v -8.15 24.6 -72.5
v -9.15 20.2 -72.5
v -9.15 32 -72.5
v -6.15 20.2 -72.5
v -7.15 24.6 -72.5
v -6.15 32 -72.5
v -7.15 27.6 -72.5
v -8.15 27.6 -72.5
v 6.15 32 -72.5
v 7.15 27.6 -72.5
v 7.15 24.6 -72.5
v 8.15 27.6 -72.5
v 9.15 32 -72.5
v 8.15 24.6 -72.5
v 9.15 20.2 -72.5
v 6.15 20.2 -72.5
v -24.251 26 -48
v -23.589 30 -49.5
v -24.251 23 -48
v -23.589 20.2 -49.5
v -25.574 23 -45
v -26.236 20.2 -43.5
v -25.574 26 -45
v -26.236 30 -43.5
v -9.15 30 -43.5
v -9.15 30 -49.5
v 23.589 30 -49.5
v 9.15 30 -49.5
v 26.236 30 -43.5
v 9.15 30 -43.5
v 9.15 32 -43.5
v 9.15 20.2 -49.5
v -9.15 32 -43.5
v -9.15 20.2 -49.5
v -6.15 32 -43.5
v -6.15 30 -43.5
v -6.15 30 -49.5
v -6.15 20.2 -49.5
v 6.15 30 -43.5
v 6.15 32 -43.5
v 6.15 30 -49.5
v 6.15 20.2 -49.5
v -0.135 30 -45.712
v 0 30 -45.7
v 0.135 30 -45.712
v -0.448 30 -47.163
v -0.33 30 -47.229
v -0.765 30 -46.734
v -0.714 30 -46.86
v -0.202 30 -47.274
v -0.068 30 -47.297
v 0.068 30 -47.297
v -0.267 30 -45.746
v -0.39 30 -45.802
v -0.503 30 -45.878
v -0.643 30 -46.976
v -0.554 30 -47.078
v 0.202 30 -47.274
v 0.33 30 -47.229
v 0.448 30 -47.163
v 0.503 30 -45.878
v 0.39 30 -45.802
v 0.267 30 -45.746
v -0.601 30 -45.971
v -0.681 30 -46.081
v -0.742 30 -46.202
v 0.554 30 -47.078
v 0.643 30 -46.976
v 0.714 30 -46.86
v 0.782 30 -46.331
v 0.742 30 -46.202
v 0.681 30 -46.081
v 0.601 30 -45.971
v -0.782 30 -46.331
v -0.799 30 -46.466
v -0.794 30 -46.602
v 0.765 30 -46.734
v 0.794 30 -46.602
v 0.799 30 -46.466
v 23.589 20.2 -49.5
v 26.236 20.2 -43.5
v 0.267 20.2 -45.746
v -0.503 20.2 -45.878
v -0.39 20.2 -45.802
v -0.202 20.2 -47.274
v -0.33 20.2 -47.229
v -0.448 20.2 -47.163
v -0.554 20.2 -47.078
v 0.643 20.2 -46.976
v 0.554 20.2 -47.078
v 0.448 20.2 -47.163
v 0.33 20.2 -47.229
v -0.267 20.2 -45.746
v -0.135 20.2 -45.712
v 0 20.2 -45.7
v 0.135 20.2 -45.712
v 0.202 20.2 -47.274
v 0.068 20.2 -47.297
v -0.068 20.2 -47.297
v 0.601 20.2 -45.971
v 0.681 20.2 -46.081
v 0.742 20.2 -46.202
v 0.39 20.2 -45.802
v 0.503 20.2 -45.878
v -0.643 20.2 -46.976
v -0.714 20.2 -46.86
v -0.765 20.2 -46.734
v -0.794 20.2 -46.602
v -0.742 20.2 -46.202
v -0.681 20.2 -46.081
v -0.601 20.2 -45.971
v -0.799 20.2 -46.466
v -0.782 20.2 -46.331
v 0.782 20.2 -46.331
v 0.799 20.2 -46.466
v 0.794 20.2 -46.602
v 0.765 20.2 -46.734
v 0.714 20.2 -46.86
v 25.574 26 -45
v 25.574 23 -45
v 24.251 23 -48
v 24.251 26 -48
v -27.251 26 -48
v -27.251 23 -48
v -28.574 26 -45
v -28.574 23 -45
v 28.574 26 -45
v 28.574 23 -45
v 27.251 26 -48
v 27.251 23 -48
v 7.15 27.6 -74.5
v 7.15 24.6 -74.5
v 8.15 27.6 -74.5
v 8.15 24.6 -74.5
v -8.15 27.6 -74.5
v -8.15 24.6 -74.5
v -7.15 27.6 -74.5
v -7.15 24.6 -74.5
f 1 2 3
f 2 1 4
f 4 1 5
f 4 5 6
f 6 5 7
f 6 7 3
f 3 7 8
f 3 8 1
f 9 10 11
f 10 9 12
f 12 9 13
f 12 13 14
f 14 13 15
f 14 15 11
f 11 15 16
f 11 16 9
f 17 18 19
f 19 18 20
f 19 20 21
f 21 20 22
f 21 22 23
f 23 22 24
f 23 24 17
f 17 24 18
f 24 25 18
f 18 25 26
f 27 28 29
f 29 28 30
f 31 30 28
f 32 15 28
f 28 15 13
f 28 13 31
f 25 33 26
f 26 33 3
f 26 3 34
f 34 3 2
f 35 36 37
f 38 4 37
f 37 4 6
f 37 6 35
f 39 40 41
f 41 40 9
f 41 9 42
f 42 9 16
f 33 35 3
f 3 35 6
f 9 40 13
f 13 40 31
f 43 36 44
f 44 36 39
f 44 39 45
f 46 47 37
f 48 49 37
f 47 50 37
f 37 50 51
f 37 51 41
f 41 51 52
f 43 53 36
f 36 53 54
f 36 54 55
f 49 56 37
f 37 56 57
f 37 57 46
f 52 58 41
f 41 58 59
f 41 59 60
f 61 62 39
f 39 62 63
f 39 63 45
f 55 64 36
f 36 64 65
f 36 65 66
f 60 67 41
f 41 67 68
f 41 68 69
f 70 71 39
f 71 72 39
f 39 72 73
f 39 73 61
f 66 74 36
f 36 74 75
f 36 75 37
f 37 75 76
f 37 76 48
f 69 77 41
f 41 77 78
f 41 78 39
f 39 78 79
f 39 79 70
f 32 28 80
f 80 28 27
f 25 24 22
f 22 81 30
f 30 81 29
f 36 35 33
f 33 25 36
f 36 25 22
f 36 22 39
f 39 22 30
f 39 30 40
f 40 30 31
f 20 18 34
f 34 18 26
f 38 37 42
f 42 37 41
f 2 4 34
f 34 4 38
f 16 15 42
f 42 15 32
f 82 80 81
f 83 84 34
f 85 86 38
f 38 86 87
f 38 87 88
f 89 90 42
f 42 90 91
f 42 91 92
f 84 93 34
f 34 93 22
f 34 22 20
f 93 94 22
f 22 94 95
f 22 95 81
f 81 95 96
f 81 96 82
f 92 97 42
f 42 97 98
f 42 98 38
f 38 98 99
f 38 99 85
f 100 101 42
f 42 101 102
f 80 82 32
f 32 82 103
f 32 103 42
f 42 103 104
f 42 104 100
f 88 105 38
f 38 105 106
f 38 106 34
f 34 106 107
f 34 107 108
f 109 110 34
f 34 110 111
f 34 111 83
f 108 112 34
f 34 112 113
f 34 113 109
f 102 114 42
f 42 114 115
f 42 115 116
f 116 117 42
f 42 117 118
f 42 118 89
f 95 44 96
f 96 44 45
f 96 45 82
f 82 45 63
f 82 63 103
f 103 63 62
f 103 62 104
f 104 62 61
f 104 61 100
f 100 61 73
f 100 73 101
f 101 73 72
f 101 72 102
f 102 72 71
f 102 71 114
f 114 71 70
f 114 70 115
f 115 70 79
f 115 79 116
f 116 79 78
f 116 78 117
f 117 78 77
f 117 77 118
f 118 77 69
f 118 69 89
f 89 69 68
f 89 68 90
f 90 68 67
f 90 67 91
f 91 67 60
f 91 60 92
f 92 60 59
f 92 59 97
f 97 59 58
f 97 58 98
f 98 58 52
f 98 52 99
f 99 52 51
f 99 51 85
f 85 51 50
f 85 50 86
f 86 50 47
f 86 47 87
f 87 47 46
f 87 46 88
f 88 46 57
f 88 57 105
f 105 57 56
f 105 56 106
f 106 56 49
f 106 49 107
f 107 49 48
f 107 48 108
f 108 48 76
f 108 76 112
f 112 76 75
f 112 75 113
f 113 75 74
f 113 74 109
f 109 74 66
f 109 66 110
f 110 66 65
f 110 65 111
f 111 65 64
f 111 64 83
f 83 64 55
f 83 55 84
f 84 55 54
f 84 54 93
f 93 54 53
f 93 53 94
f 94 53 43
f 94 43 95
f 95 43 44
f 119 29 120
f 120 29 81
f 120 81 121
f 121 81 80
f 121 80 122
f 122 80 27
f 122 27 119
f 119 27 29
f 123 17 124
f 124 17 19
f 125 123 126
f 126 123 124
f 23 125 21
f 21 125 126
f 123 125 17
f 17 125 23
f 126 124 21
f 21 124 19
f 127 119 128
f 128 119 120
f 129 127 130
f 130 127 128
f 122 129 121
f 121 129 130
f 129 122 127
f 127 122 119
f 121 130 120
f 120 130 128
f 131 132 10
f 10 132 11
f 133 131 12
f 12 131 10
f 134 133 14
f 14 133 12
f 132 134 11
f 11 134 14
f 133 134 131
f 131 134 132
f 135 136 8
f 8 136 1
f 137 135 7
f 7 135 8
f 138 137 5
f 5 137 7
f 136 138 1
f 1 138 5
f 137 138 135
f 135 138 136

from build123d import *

# Parameters (mm, degrees)
SKETCH1_W                = 58
SKETCH1_H                = 65
BOSS_EXTRUDE1_DEPTH      = 30
BOSS_EXTRUDE3_REACH      = 92.09
SKETCH10_W               = 5
SKETCH10_H               = 14
CUT_EXTRUDE1_REACH       = 111.372
SKETCH2_R                = 2.45
SKETCH2_R_2              = 2.55
CUT_EXTRUDE2_REACH       = 91.744
SKETCH3_W                = 12.4
SKETCH3_H                = 10.4
SKETCH11_W               = 3
SKETCH11_H               = 2
BOSS_EXTRUDE4_DEPTH      = 6.3
FILLET3_R                = 1.5
SKETCH12_R               = 0.5
CUT_EXTRUDE3_DEPTH       = 92.15338732
FILLET3_OF_MIRROR1_R     = 1.5
BOSS_EXTRUDE5_REACH      = 111.564
SKETCH13_W               = 15
SKETCH13_H               = 6
BOSS_EXTRUDE6_REACH      = 111.564
SKETCH17_W               = 15
SKETCH17_H               = 14
CUT_EXTRUDE18_REACH      = 129.651
SKETCH35_W               = 16
SKETCH35_H               = 6
FILLET5_R                = 3
BOSS_EXTRUDE7_START      = 20.2
BOSS_EXTRUDE7_DEPTH      = 9.8
BOSS_EXTRUDE8_DEPTH      = 20
CUT_EXTRUDE15_REACH      = 95.637
SKETCH28_R               = 0.8
FILLET4_R                = 3
CUT_EXTRUDE16_REACH      = 96.767
SKETCH29_R               = 1.6
SKETCH30_W               = 14
SKETCH30_H               = 1.5
BOSS_EXTRUDE9_DEPTH      = 6.1
SKETCH31_W               = 1.3
SKETCH31_H               = 14
BOSS_EXTRUDE10_DEPTH     = 5
CUT_EXTRUDE17_REACH      = 99.736
FILLET11_R               = 1
FILLET11_OF_MIRROR4_R    = 1
MIRROR5_START            = 2.5
MIRROR5_OUTLINE_W        = 1.5
MIRROR5_OUTLINE_H        = 14
MIRROR5_DEPTH            = 6.1
MIRROR5_START_2          = 7.3
MIRROR5_2_DEPTH          = 1.3
SKETCH36_W               = 22.4
SKETCH36_H               = 14.8
BOSS_EXTRUDE12_DEPTH     = 14
CUT_EXTRUDE19_DEPTH      = 3
CUT_EXTRUDE20_DEPTH      = 11
CUT_EXTRUDE21_REACH      = 101.088
SKETCH41_W               = 3
SKETCH41_H               = 35
BOSS_EXTRUDE13_DEPTH     = 2
BOSS_EXTRUDE14_START     = -1.789079
SKETCH43_W               = 36.284482562
SKETCH43_H               = 9.6
BOSS_EXTRUDE14_DEPTH     = 66.789079
BOSS_EXTRUDE15_REACH     = 152.996
SKETCH44_W               = 2.842240903
SKETCH44_H               = 50
FILLET6_R                = 8
FILLET7_R                = 5
SKETCH45_W               = 17
SKETCH45_H               = 8
CUT_EXTRUDE22_DEPTH      = 166.644015889
BOSS_EXTRUDE16_REACH     = 152.29
SKETCH46_W               = 4.5
SKETCH46_H               = 5
BOSS_EXTRUDE17_REACH     = 154.715
SKETCH49_W               = 8
SKETCH49_H               = 9
CUT_EXTRUDE23_DEPTH      = 8
SKETCH50_R               = 2.45
CUT_EXTRUDE24_DEPTH      = 4.5
CUT_EXTRUDE25_START      = 13.5
SKETCH51_R               = 2.45
CUT_EXTRUDE25_DEPTH      = 4.5
BOSS_EXTRUDE18_REACH     = 165.708
SKETCH53_W               = 5
SKETCH53_H               = 10
SKETCH55_W               = 58
SKETCH55_H               = 10
BOSS_EXTRUDE20_DEPTH     = 4
CUT_EXTRUDE9_START       = -10
SKETCH19_W               = 30
SKETCH19_H               = 15
CUT_EXTRUDE9_DEPTH       = 10
SKETCH58_W               = 70
SKETCH58_H               = 9
CUT_EXTRUDE27_DEPTH      = 153.77843439
BOSS_EXTRUDE22_REACH     = 153.411
SKETCH59_W               = 30
SKETCH59_H               = 5
CUT_EXTRUDE28_REACH      = 183.113
SKETCH18_R               = 1.5
FILLET9_R                = 2
FILLET10_R               = 1
SKETCH60_W               = 70
SKETCH60_H               = 3
BOSS_EXTRUDE23_DEPTH     = 30
CUT_EXTRUDE29_DEPTH      = 7.5
CUT_EXTRUDE30_DEPTH      = 3
SKETCH64_W               = 58
SKETCH64_H               = 4
BOSS_EXTRUDE24_DEPTH     = 6
CUT_EXTRUDE31_DEPTH      = 7.5
CUT_EXTRUDE32_DEPTH      = 153.77843439
SKETCH66_W               = 26.284482562
SKETCH66_H               = 4.8
BOSS_EXTRUDE25_DEPTH     = 10
SKETCH73_W               = 121.646596119
SKETCH73_H               = 145.231140265
CUT_EXTRUDE33_DEPTH      = 16
CUT_EXTRUDE34_DEPTH      = 4
CUT_EXTRUDE35_DEPTH      = 6.5
CUT_EXTRUDE36_DEPTH      = 7
SKETCH79_W               = 43.755200993
SKETCH79_H               = 6.87148653
CUT_EXTRUDE37_DEPTH      = 2
CUT_EXTRUDE38_DEPTH      = 2.4
CUT_EXTRUDE39_DEPTH      = 108.707547785
CUT_EXTRUDE39_DEPTH_BACK = 108.707547785
SKETCH81_W               = 95.744118352
SKETCH81_H               = 138.331599567
BOSS_EXTRUDE26_START     = -2.8
BOSS_EXTRUDE26_DEPTH     = 3
SKETCH83_W               = 1
SKETCH83_H               = 3
BOSS_EXTRUDE27_DEPTH     = 2


# Read off the part's stored shape, not the designer's step: Mirror5
# Some blends are built 0.0001 mm under size
with BuildPart() as part:
    # Sketch1 → Boss-Extrude1 (new body)
    with BuildSketch(Plane(origin=(0, 0, 0), x_dir=(1, 0, 0), z_dir=(0, 1, 0))):
        Polygon((-35, 38.5), (-17.352941176, 78.5), (17.352941947, 78.5), (35, 38.5), (35, -38.5), (-35, -38.5), align=None)
        Rectangle(SKETCH1_W, SKETCH1_H, mode=Mode.SUBTRACT)
        Polygon((-28.44203382, 38.5), (28.442033867, 38.5), (13.442034522, 72.5), (-13.44203382, 72.5), align=None, mode=Mode.SUBTRACT)
    extrude(amount=BOSS_EXTRUDE1_DEPTH)

    # Sketch7 → Loft3 section 0
    with BuildSketch(Plane.XY.offset(-32.5)):
        with BuildLine():
            Line((-8.6, 30), (8.6, 30))
            Line((8.6, 30), (8.6, 27))
            Line((8.6, 27), (-8.6, 27))
            Line((-8.6, 27), (-8.6, 30))
        make_face()
    # Sketch8 → Loft3 section 1
    with BuildSketch(Plane.XY.offset(38.5)):
        with BuildLine():
            Line((-8.6, 30), (8.6, 30))
            Line((8.6, 30), (8.6, 27))
            Line((8.6, 27), (-8.6, 27))
            Line((-8.6, 27), (-8.6, 30))
        make_face()
    loft3 = loft()

    # Mirror3: Loft3 across plane
    add(loft3.mirror(Plane(origin=(0, 15, 0), x_dir=(0, 0, 1), z_dir=(0, -1, 0))))

    # Sketch10 → Boss-Extrude3 (add, up to next)
    with BuildSketch(Plane.XZ.offset(-27), mode=Mode.PRIVATE) as boss_extrude3_sk1:
        with Locations((0, 2.5)):
            Rectangle(SKETCH10_W, SKETCH10_H)
    boss_extrude3_tool1 = extrude(boss_extrude3_sk1.sketch, amount=BOSS_EXTRUDE3_REACH, mode=Mode.PRIVATE) - part.part
    add(boss_extrude3_tool1.solids().sort_by_distance((0, 27, 2.5))[0])

    # Sketch2 → Cut-Extrude1 (cut, up to next)
    with BuildSketch(Plane(origin=(35, 0, 0), x_dir=(0, 0, -1), z_dir=(1, 0, 0)), mode=Mode.PRIVATE) as cut_extrude1_sk1:
        with Locations((-2.5, 15)):
            Circle(SKETCH2_R)
    cut_extrude1_tool1 = extrude(cut_extrude1_sk1.sketch, amount=-CUT_EXTRUDE1_REACH, mode=Mode.PRIVATE) & part.part
    # Sketch2 → Cut-Extrude1 (cut, up to next)
    with BuildSketch(Plane(origin=(35, 0, 0), x_dir=(0, 0, -1), z_dir=(1, 0, 0)), mode=Mode.PRIVATE) as cut_extrude1_sk2:
        with Locations((19.5, 15)):
            Circle(SKETCH2_R_2)
    cut_extrude1_tool2 = extrude(cut_extrude1_sk2.sketch, amount=-CUT_EXTRUDE1_REACH, mode=Mode.PRIVATE) & part.part
    cut_extrude1_1 = cut_extrude1_tool1.solids().sort_by_distance((35, 15, 2.5))[0]
    add(cut_extrude1_1, mode=Mode.SUBTRACT)
    cut_extrude1_2 = cut_extrude1_tool2.solids().sort_by_distance((35, 15, -19.5))[0]
    add(cut_extrude1_2, mode=Mode.SUBTRACT)
    cut_extrude1 = cut_extrude1_1 + cut_extrude1_2  # Cut-Extrude1 as one shape, for the pattern or mirror that repeats it

    # Sketch3 → Cut-Extrude2 (cut, up to next)
    with BuildSketch(Plane(origin=(0, 0, -38.5), x_dir=(-1, 0, 0), z_dir=(0, 0, -1)), mode=Mode.PRIVATE) as cut_extrude2_sk1:
        with Locations((0, 15)):
            Rectangle(SKETCH3_W, SKETCH3_H)
    cut_extrude2_tool1 = extrude(cut_extrude2_sk1.sketch, amount=-CUT_EXTRUDE2_REACH, mode=Mode.PRIVATE) & part.part
    add(cut_extrude2_tool1.solids().sort_by_distance((0, 15, -38.5))[0], mode=Mode.SUBTRACT)

    # Sketch11 → Boss-Extrude4 (add)
    with BuildSketch(Plane(origin=(35, 0, 0), x_dir=(0, 0, -1), z_dir=(1, 0, 0))):
        with Locations((2.5, 20)):
            Rectangle(SKETCH11_W, SKETCH11_H)
        with Locations((2.5, 10)):
            Rectangle(SKETCH11_W, SKETCH11_H)
    boss_extrude4 = extrude(amount=BOSS_EXTRUDE4_DEPTH)

    # Fillet3
    fillet3_edges = [part.edges().sort_by_distance(p)[0] for p in [
        (41.3, 10, -1),
        (41.3, 10, -4),
        (41.3, 20, -1),
        (41.3, 20, -4),
    ]]
    fillet(fillet3_edges, radius=FILLET3_R - 0.0001)  # a hair under: the kernel refuses the full size

    # Sketch12 → Cut-Extrude3 (cut, through all)
    with BuildSketch(Plane(origin=(0, 21, 0), x_dir=(1, 0, 0), z_dir=(0, 1, 0))):
        with Locations(Location((39.8, 2.5, 0), (0, 0, 270))):
            Circle(SKETCH12_R)
    cut_extrude3 = extrude(amount=-CUT_EXTRUDE3_DEPTH, mode=Mode.SUBTRACT)

    # Mirror1: Cut-Extrude1, Boss-Extrude4, Cut-Extrude3 across plane
    add(cut_extrude1.mirror(Plane(origin=(0, 0, 0), x_dir=(0, 0, 1), z_dir=(1, 0, 0))), mode=Mode.SUBTRACT)
    add(boss_extrude4.mirror(Plane(origin=(0, 0, 0), x_dir=(0, 0, 1), z_dir=(1, 0, 0))))
    add(cut_extrude3.mirror(Plane(origin=(0, 0, 0), x_dir=(0, 0, 1), z_dir=(1, 0, 0))), mode=Mode.SUBTRACT)

    # Fillet3 of Mirror1
    fillet3_of_mirror1_edges = [part.edges().sort_by_distance(p)[0] for p in [
        (-41.3, 10, -1),
        (-41.3, 10, -4),
        (-41.3, 20, -1),
        (-41.3, 20, -4),
    ]]
    fillet(fillet3_of_mirror1_edges, radius=FILLET3_OF_MIRROR1_R - 0.0001)  # a hair under: the kernel refuses the full size

    # Sketch13 → Boss-Extrude5 (add, up to next)
    with BuildSketch(Plane(origin=(-29, 0, 0), x_dir=(0, 0, -1), z_dir=(1, 0, 0)), mode=Mode.PRIVATE) as boss_extrude5_sk1:
        with Locations((-25, 27)):
            Rectangle(SKETCH13_W, SKETCH13_H)
    boss_extrude5_tool1 = extrude(boss_extrude5_sk1.sketch, amount=BOSS_EXTRUDE5_REACH, mode=Mode.PRIVATE) - part.part
    add(boss_extrude5_tool1.solids().sort_by_distance((-29, 27, 25))[0])

    # Sketch17 → Boss-Extrude6 (add, up to next)
    with BuildSketch(Plane(origin=(-29, 0, 0), x_dir=(0, 0, -1), z_dir=(1, 0, 0)), mode=Mode.PRIVATE) as boss_extrude6_sk1:
        with Locations((-25, 7)):
            Rectangle(SKETCH17_W, SKETCH17_H)
    boss_extrude6_tool1 = extrude(boss_extrude6_sk1.sketch, amount=BOSS_EXTRUDE6_REACH, mode=Mode.PRIVATE) - part.part
    add(boss_extrude6_tool1.solids().sort_by_distance((-29, 7, 25))[0])

    # Sketch35 → Cut-Extrude18 (cut, up to next)
    with BuildSketch(Plane(origin=(0, 0, -78.5), x_dir=(-1, 0, 0), z_dir=(0, 0, -1)), mode=Mode.PRIVATE) as cut_extrude18_sk1:
        with Locations((0, 15)):
            Rectangle(SKETCH35_W, SKETCH35_H)
    cut_extrude18_tool1 = extrude(cut_extrude18_sk1.sketch, amount=-CUT_EXTRUDE18_REACH, mode=Mode.PRIVATE) & part.part
    add(cut_extrude18_tool1.solids().sort_by_distance((0, 15, -78.5))[0], mode=Mode.SUBTRACT)

    # Fillet5
    fillet5_edges = [part.edges().sort_by_distance(p)[0] for p in [
        (-35, 15, -38.5),
        (-17.352941176, 15, -78.5),
        (17.352941947, 15, -78.5),
        (35, 15, -38.5),
        (-8, 15, -78.5),
        (8, 15, -78.5),
    ]]
    fillet(fillet5_edges, radius=FILLET5_R)

    # Sketch24 → Boss-Extrude7 (add)
    with BuildSketch(Plane(origin=(0, 0, 0), x_dir=(1, 0, 0), z_dir=(0, 1, 0)).offset(BOSS_EXTRUDE7_START)):
        Polygon((9.15, 49.5), (9.15, 72.5), (6.15, 72.5), (6.15, 49.5), (-6.15, 49.5), (-6.15, 72.5), (-9.15, 72.5), (-9.15, 49.5), (-23.589092644, 49.5), (-26.23615161, 43.5), (26.23615161, 43.5), (23.589092902, 49.5), align=None)
    extrude(amount=BOSS_EXTRUDE7_DEPTH)

    # Sketch26 → Boss-Extrude8 (add)
    with BuildSketch(Plane(origin=(0, 0, -38.5), x_dir=(-1, 0, 0), z_dir=(0, 0, -1))):
        Polygon((-11.2, 4.8), (-11.2, 0), (11.2, 0), (11.2, 4.8), (11.2, 14.8), (6.2, 14.8), (6.2, 9.8), (-6.2, 9.8), (-6.2, 14.8), (-11.2, 14.8), align=None)
    extrude(amount=BOSS_EXTRUDE8_DEPTH)

    # Sketch28 → Cut-Extrude15 (cut, up to next)
    with BuildSketch(Plane(origin=(0, 30, 0), x_dir=(-1, 0, 0), z_dir=(0, 1, 0)), mode=Mode.PRIVATE) as cut_extrude15_sk1:
        with Locations(Location((0, -46.5, 0), (0, 0, 90))):
            Circle(SKETCH28_R)
    cut_extrude15_tool1 = extrude(cut_extrude15_sk1.sketch, amount=-CUT_EXTRUDE15_REACH, mode=Mode.PRIVATE) & part.part
    # Sketch28 → Cut-Extrude15 (cut, up to next)
    with BuildSketch(Plane(origin=(0, 30, 0), x_dir=(-1, 0, 0), z_dir=(0, 1, 0)), mode=Mode.PRIVATE) as cut_extrude15_sk2:
        with Locations(Location((0, -75.5, 0), (0, 0, 90))):
            Circle(SKETCH28_R)
    cut_extrude15_tool2 = extrude(cut_extrude15_sk2.sketch, amount=-CUT_EXTRUDE15_REACH, mode=Mode.PRIVATE) & part.part
    add(cut_extrude15_tool1.solids().sort_by_distance((0, 30, -46.5))[0], mode=Mode.SUBTRACT)
    add(cut_extrude15_tool2.solids().sort_by_distance((0, 30, -75.5))[0], mode=Mode.SUBTRACT)

    # Fillet4
    fillet4_edges = [part.edges().sort_by_distance(p)[0] for p in [
        (35, 19, -2.5),
        (35, 20, -4),
        (35, 21, -2.5),
        (35, 11, -2.5),
        (35, 9, -2.5),
        (35, 10, -4),
        (-35, 19, -2.5),
        (-35, 20, -4),
        (-35, 21, -2.5),
        (-35, 11, -2.5),
        (-35, 9, -2.5),
        (-35, 10, -4),
    ]]
    fillet(fillet4_edges, radius=FILLET4_R)

    # Sketch29 → Cut-Extrude16 (cut, up to next)
    with BuildSketch(Plane(origin=(2.5, 0, 0), x_dir=(0, 0, -1), z_dir=(1, 0, 0)), mode=Mode.PRIVATE) as cut_extrude16_sk1:
        with Locations(Location((-2.5, 15, 0), (0, 0, 90))):
            Circle(SKETCH29_R)
    cut_extrude16_tool1 = extrude(cut_extrude16_sk1.sketch, amount=-CUT_EXTRUDE16_REACH, mode=Mode.PRIVATE) & part.part
    add(cut_extrude16_tool1.solids().sort_by_distance((2.5, 15, 2.5))[0], mode=Mode.SUBTRACT)

    # Sketch30 → Boss-Extrude9 (add)
    with BuildSketch(Plane.ZY.offset(2.5)):
        with Locations((2.5, 26.25)):
            Rectangle(SKETCH30_W, SKETCH30_H)
    boss_extrude9 = extrude(amount=BOSS_EXTRUDE9_DEPTH)

    # Sketch31 → Boss-Extrude10 (add)
    with BuildSketch(Plane.XZ.offset(-25.5)):
        with Locations((-7.95, 2.5)):
            Rectangle(SKETCH31_W, SKETCH31_H)
    boss_extrude10 = extrude(amount=BOSS_EXTRUDE10_DEPTH)

    # Sketch32 → Cut-Extrude17 (cut, up to next)
    with BuildSketch(Plane.ZY.offset(8.6), mode=Mode.PRIVATE) as cut_extrude17_sk1:
        with BuildLine():
            Line((-4.5, 20.5), (-4.5, 20.656854249))
            ThreePointArc((-4.5, 20.656854249), (2.5, 24), (9.5, 20.656854249))
            Line((9.5, 20.656854249), (9.5, 20.5))
            Line((9.5, 20.5), (-4.5, 20.5))
        make_face()
    cut_extrude17_tool1 = extrude(cut_extrude17_sk1.sketch, amount=-CUT_EXTRUDE17_REACH, mode=Mode.PRIVATE) & part.part
    cut_extrude17 = cut_extrude17_tool1.solids().sort_by_distance((-8.6, 21.927092, 2.5))[0]
    add(cut_extrude17, mode=Mode.SUBTRACT)

    # Fillet11
    fillet11_edges = [part.edges().sort_by_distance(p)[0] for p in [
        (-7.95, 20.656854249, 9.5),
        (-7.95, 20.656854249, -4.5),
    ]]
    fillet(fillet11_edges, radius=FILLET11_R)

    # Mirror4: Boss-Extrude9, Boss-Extrude10, Cut-Extrude17 across plane
    add(boss_extrude9.mirror(Plane(origin=(0, 15, 0), x_dir=(0, 0, 1), z_dir=(0, -1, 0))))
    add(boss_extrude10.mirror(Plane(origin=(0, 15, 0), x_dir=(0, 0, 1), z_dir=(0, -1, 0))))
    add(cut_extrude17.mirror(Plane(origin=(0, 15, 0), x_dir=(0, 0, 1), z_dir=(0, -1, 0))), mode=Mode.SUBTRACT)

    # Fillet11 of Mirror4
    fillet11_of_mirror4_edges = [part.edges().sort_by_distance(p)[0] for p in [
        (-7.95, 9.343145751, 9.5),
        (-7.95, 9.343145751, -4.5),
    ]]
    fillet(fillet11_of_mirror4_edges, radius=FILLET11_OF_MIRROR4_R)

    # Mirror5 outline → Mirror5 (add)
    with BuildSketch(Plane.YZ.offset(MIRROR5_START)):
        with Locations((3.75, 2.5)):
            Rectangle(MIRROR5_OUTLINE_W, MIRROR5_OUTLINE_H)
        with Locations((26.25, 2.5)):
            Rectangle(MIRROR5_OUTLINE_W, MIRROR5_OUTLINE_H)
    extrude(amount=MIRROR5_DEPTH)

    # Mirror5 2 outline → Mirror5 2 (add)
    with BuildSketch(Plane.YZ.offset(MIRROR5_START_2)):
        with BuildLine():
            Line((7, 9.5), (4.5, 9.5))
            Line((4.5, 9.5), (4.5, -4.5))
            Line((4.5, -4.5), (7, -4.5))
            ThreePointArc((7, -4.5), (7.894427191, -3.947213595), (7.8, -2.9))
            ThreePointArc((7.8, -2.9), (6, 2.5), (7.8, 7.9))
            ThreePointArc((7.8, 7.9), (7.894427191, 8.947213595), (7, 9.5))
        make_face()
        with BuildLine():
            Line((25.5, 9.5), (23, 9.5))
            ThreePointArc((23, 9.5), (22.105572809, 8.947213595), (22.2, 7.9))
            ThreePointArc((22.2, 7.9), (24, 2.5), (22.2, -2.9))
            ThreePointArc((22.2, -2.9), (22.105572809, -3.947213595), (23, -4.5))
            Line((23, -4.5), (25.5, -4.5))
            Line((25.5, -4.5), (25.5, 9.5))
        make_face()
    extrude(amount=MIRROR5_2_DEPTH)

    # Sketch36 → Boss-Extrude12 (add)
    with BuildSketch(Plane(origin=(0, 0, -58.5), x_dir=(-1, 0, 0), z_dir=(0, 0, -1))):
        with Locations((0, 7.4)):
            Rectangle(SKETCH36_W, SKETCH36_H)
    extrude(amount=BOSS_EXTRUDE12_DEPTH)

    # Sketch37 → Cut-Extrude19 (cut)
    with BuildSketch(Plane.XY.offset(-58.5)):
        with BuildLine():
            Line((-6, 14.8), (6, 14.8))
            ThreePointArc((6, 14.8), (5.340169944, 12.004915028), (3.5, 9.8))
            Line((3.5, 9.8), (-3.5, 9.8))
            ThreePointArc((-3.5, 9.8), (-5.340169944, 12.004915028), (-6, 14.8))
        make_face()
    extrude(amount=-CUT_EXTRUDE19_DEPTH, mode=Mode.SUBTRACT)

    # Sketch38 → Cut-Extrude20 (cut)
    with BuildSketch(Plane.XY.offset(-61.5)):
        with BuildLine():
            Line((-6, 14.8), (6, 14.8))
            ThreePointArc((6, 14.8), (0, 11.8), (-6, 14.8))
        make_face()
    extrude(amount=-CUT_EXTRUDE20_DEPTH, mode=Mode.SUBTRACT)

    # Cut-Extrude21: up to this face of the body (flat: up to its plane)
    cut_extrude21_end = Plane(part.part.faces().sort_by_distance((11.2, 7.4, -55.5))[0])
    # Sketch40 → Cut-Extrude21 (cut, up to the picked face)
    with BuildSketch(Plane.ZY.offset(11.2), mode=Mode.PRIVATE) as cut_extrude21_sk1:
        Polygon((-58.5, 14.8), (-72.5, 14.8), (-72.5, 11.8), align=None)
    cut_extrude21_tool1 = split(extrude(cut_extrude21_sk1.sketch, amount=-CUT_EXTRUDE21_REACH, mode=Mode.PRIVATE), bisect_by=cut_extrude21_end, keep=Keep.BOTH, mode=Mode.PRIVATE)
    add(cut_extrude21_tool1.solids().sort_by(Axis((-11.2, 13.8, -67.833333), (1, 0, 0)))[0], mode=Mode.SUBTRACT)

    # Sketch41 → Boss-Extrude13 (add)
    with BuildSketch(Plane(origin=(0, 30, 0), x_dir=(1, 0, 0), z_dir=(0, 1, 0))):
        with Locations((-7.65, 61)):
            Rectangle(SKETCH41_W, SKETCH41_H)
        with Locations((7.65, 61)):
            Rectangle(SKETCH41_W, SKETCH41_H)
    extrude(amount=BOSS_EXTRUDE13_DEPTH)

    # Sketch43 → Boss-Extrude14 (add)
    with BuildSketch(Plane(origin=(0, 0, -78.5), x_dir=(-1, 0, 0), z_dir=(0, 0, -1)).offset(BOSS_EXTRUDE14_START)):
        with Locations((-3.78e-07, 4.8)):
            Rectangle(SKETCH43_W, SKETCH43_H)
        with Locations((-3.78e-07, 25.2)):
            Rectangle(SKETCH43_W, SKETCH43_H)
    extrude(amount=BOSS_EXTRUDE14_DEPTH)

    # Sketch44 → Boss-Extrude15 (add, up to next)
    with BuildSketch(Plane(origin=(0, 9.6, 0), x_dir=(1, 0, 0), z_dir=(0, 1, 0)), mode=Mode.PRIVATE) as boss_extrude15_sk1:
        with Locations((-16.721120451, 118.5)):
            Rectangle(SKETCH44_W, SKETCH44_H)
    boss_extrude15_tool1 = extrude(boss_extrude15_sk1.sketch, amount=BOSS_EXTRUDE15_REACH, mode=Mode.PRIVATE) - part.part
    # Sketch44 → Boss-Extrude15 (add, up to next)
    with BuildSketch(Plane(origin=(0, 9.6, 0), x_dir=(1, 0, 0), z_dir=(0, 1, 0)), mode=Mode.PRIVATE) as boss_extrude15_sk2:
        Polygon((18.142241659, 143.5), (15.3, 143.5), (15.3, 93.5), (18.142240903, 93.5), align=None)
    boss_extrude15_tool2 = extrude(boss_extrude15_sk2.sketch, amount=BOSS_EXTRUDE15_REACH, mode=Mode.PRIVATE) - part.part
    add(boss_extrude15_tool1.solids().sort_by_distance((-16.72112, 9.6, -118.5))[0])
    add(boss_extrude15_tool2.solids().sort_by_distance((16.721121, 9.6, -118.500001))[0])

    # Fillet6
    fillet6_edges = [part.edges().sort_by_distance(p)[0] for p in [
        (3.78e-07, 0, -143.5),
        (3.78e-07, 30, -143.5),
    ]]
    fillet(fillet6_edges, radius=FILLET6_R)

    # Fillet7
    # the kernel refuses this fillet: 5 mm, written as the material it takes off along each edge
    with BuildSketch(Plane(origin=(18.142241659, 0, -64.210921), x_dir=(-1, 0, 0), z_dir=(0, 0, -1))) as fillet7_piece_1_section:
        with BuildLine():
            CenterArc((FILLET7_R, FILLET7_R), FILLET7_R, 180, 90)
            Line((0, FILLET7_R), (0, 0))
            Line((0, 0), (FILLET7_R, 0))
        make_face()
    fillet7_piece_1 = extrude(amount=71.289079, mode=Mode.PRIVATE)
    fillet7_piece_1 = split(fillet7_piece_1, bisect_by=Plane(origin=(6.655944686, 1.159648817, -102.746528186), z_dir=(0.9149178080838143, 0, -0.4036401918182936)), keep=Keep.TOP, mode=Mode.PRIVATE)
    with BuildSketch(Plane(origin=(18.142241659, 8, -135.5), x_dir=(0, -1, 0), z_dir=(0, 0, 1))) as fillet7_piece_2:
        with BuildLine():
            CenterArc((8 - FILLET7_R, -FILLET7_R), FILLET7_R, 0, 90)
            Line((8 - FILLET7_R, 0), (8, 0))
            Line((8, 0), (8, -FILLET7_R))
        make_face()
    fillet7_piece_2_solid = revolve(axis=Axis((18.142241659, 8, -135.5), (1, 0, 0)), revolution_arc=90, mode=Mode.PRIVATE)
    with BuildSketch(Plane(origin=(18.142241659, 9.6, -143.5), x_dir=(-1, 0, 0), z_dir=(0, 1, 0))) as fillet7_piece_3:
        with BuildLine():
            CenterArc((FILLET7_R * 1.00000001512, FILLET7_R), FILLET7_R, 179.999999134, 90.000000866)
            Line((FILLET7_R * 1.511713279e-08, FILLET7_R * 1.00000001512), (0, 0))
            Line((0, 0), (FILLET7_R * 1.00000001512, 0))
        make_face()
    fillet7_piece_3_solid = extrude(amount=10.8, mode=Mode.PRIVATE)
    with BuildSketch(Plane(origin=(18.142241659, 22, -135.5), x_dir=(0, 1, 0), z_dir=(0, 0, 1))) as fillet7_piece_4:
        with BuildLine():
            CenterArc((8 - FILLET7_R, FILLET7_R), FILLET7_R, 270, 90)
            Line((8 - FILLET7_R, 0), (8, 0))
            Line((8, 0), (8, FILLET7_R))
        make_face()
    fillet7_piece_4_solid = revolve(axis=Axis((18.142241659, 22, -135.5), (-1, 0, 0)), revolution_arc=90, mode=Mode.PRIVATE)
    with BuildSketch(Plane(origin=(-18.142240903, 0, -64.210921), x_dir=(0, 1, 0), z_dir=(0, 0, -1))) as fillet7_piece_5_section:
        with BuildLine():
            CenterArc((FILLET7_R, FILLET7_R), FILLET7_R, 180, 90)
            Line((0, FILLET7_R), (0, 0))
            Line((0, 0), (FILLET7_R, 0))
        make_face()
    fillet7_piece_5 = extrude(amount=71.289079, mode=Mode.PRIVATE)
    fillet7_piece_5 = split(fillet7_piece_5, bisect_by=Plane(origin=(-6.655943611, 1.159648816, -102.746527816), z_dir=(-0.914917801572932, 0, -0.40364020657629374)), keep=Keep.TOP, mode=Mode.PRIVATE)
    with BuildSketch(Plane(origin=(-18.142240903, 8, -135.5), x_dir=(0, -1, 0), z_dir=(0, 0, 1))) as fillet7_piece_6:
        with BuildLine():
            CenterArc((8 - FILLET7_R, FILLET7_R), FILLET7_R, 270, 90)
            Line((8, FILLET7_R), (8, 0))
            Line((8, 0), (8 - FILLET7_R, 0))
        make_face()
    fillet7_piece_6_solid = revolve(axis=Axis((-18.142240903, 8, -135.5), (1, 0, 0)), revolution_arc=90, mode=Mode.PRIVATE)
    with BuildSketch(Plane(origin=(-18.142240903, 22, -143.5), x_dir=(0, 0, 1), z_dir=(0, -1, 0))) as fillet7_piece_7:
        with BuildLine():
            CenterArc((FILLET7_R, -FILLET7_R), FILLET7_R, 90, 90)
            Line((0, -FILLET7_R), (0, 0))
            Line((0, 0), (FILLET7_R, 0))
        make_face()
    fillet7_piece_7_solid = extrude(amount=14, mode=Mode.PRIVATE)
    with BuildSketch(Plane(origin=(-18.142240903, 22, -135.5), x_dir=(0, 1, 0), z_dir=(0, 0, 1))) as fillet7_piece_8:
        with BuildLine():
            CenterArc((8 - FILLET7_R, -FILLET7_R), FILLET7_R, 0, 90)
            Line((8, -FILLET7_R), (8, 0))
            Line((8, 0), (8 - FILLET7_R, 0))
        make_face()
    fillet7_piece_8_solid = revolve(axis=Axis((-18.142240903, 22, -135.5), (-1, 0, 0)), revolution_arc=90, mode=Mode.PRIVATE)
    with BuildSketch(Plane(origin=(18.142241659, 30, -64.210921), x_dir=(-1, 0, 0), z_dir=(0, 0, -1))) as fillet7_piece_9_section:
        with BuildLine():
            CenterArc((FILLET7_R, -FILLET7_R), FILLET7_R, 90, 90)
            Line((0, -FILLET7_R), (0, 0))
            Line((0, 0), (FILLET7_R, 0))
        make_face()
    fillet7_piece_9 = extrude(amount=71.289079, mode=Mode.PRIVATE)
    fillet7_piece_9 = split(fillet7_piece_9, bisect_by=Plane(origin=(6.655944686, 28.840351183, -102.746528186), z_dir=(0.9149178080838143, 0, -0.4036401918182936)), keep=Keep.TOP, mode=Mode.PRIVATE)
    with BuildSketch(Plane(origin=(-18.142240903, 30, -64.210921), x_dir=(1, 0, 0), z_dir=(0, 0, -1))) as fillet7_piece_10_section:
        with BuildLine():
            CenterArc((FILLET7_R, FILLET7_R), FILLET7_R, 180, 90)
            Line((0, FILLET7_R), (0, 0))
            Line((0, 0), (FILLET7_R, 0))
        make_face()
    fillet7_piece_10 = extrude(amount=71.289079, mode=Mode.PRIVATE)
    fillet7_piece_10 = split(fillet7_piece_10, bisect_by=Plane(origin=(-6.655943611, 28.840351184, -102.746527816), z_dir=(-0.914917801572932, 0, -0.40364020657629374)), keep=Keep.TOP, mode=Mode.PRIVATE)
    with BuildSketch(Plane(origin=(18.142241659, 20.4, -143.5), x_dir=(0, 0, 1), z_dir=(0, 1, 0)), Plane(origin=(18.142241659, 9.6, -143.5), x_dir=(-1, 0, 0), z_dir=(0, -1, 0))) as fillet7_piece_11:
        with BuildLine():
            CenterArc((FILLET7_R, -FILLET7_R), FILLET7_R, 90, 90)
            Line((0, -FILLET7_R), (0, 0))
            Line((0, 0), (FILLET7_R, 0))
        make_face()
    fillet7_piece_11_solid = extrude(amount=1.6, mode=Mode.PRIVATE)
    add([fillet7_piece_1, fillet7_piece_2_solid, fillet7_piece_3_solid, fillet7_piece_4_solid, fillet7_piece_5, fillet7_piece_6_solid, fillet7_piece_7_solid, fillet7_piece_8_solid, fillet7_piece_9, fillet7_piece_10, fillet7_piece_11_solid], mode=Mode.SUBTRACT)

    # Sketch45 → Cut-Extrude22 (cut, through all)
    with BuildSketch(Plane(origin=(35, 0, 0), x_dir=(0, 0, -1), z_dir=(1, 0, 0))):
        with Locations((-24, 19)):
            Rectangle(SKETCH45_W, SKETCH45_H)
    extrude(amount=-CUT_EXTRUDE22_DEPTH, mode=Mode.SUBTRACT)

    # Sketch46 → Boss-Extrude16 (add, up to next)
    with BuildSketch(Plane(origin=(0, 15, 0), x_dir=(1, 0, 0), z_dir=(0, 1, 0)), mode=Mode.PRIVATE) as boss_extrude16_sk1:
        with Locations((31.25, -30)):
            Rectangle(SKETCH46_W, SKETCH46_H)
    boss_extrude16_tool1 = extrude(boss_extrude16_sk1.sketch, amount=BOSS_EXTRUDE16_REACH, mode=Mode.PRIVATE) - part.part
    boss_extrude16 = boss_extrude16_tool1.solids().sort_by_distance((31.25, 15, 30))[0]
    add(boss_extrude16)

    # Boss-Extrude17: up to this face of the body (flat: up to its plane)
    boss_extrude17_end = Plane(part.part.faces().sort_by_distance((-6.013146063, 30, -46.5))[0])
    # Sketch48 → Boss-Extrude17 (add, up to the picked face)
    with BuildSketch(Plane.XZ, mode=Mode.PRIVATE) as boss_extrude17_sk1:
        with BuildLine():
            Line((35, 29.5), (39, 29.5))
            ThreePointArc((39, 29.5), (43, 25.5), (39, 21.5))
            Line((39, 21.5), (35, 21.5))
            Line((35, 21.5), (35, 29.5))
        make_face()
    boss_extrude17_tool1 = split(extrude(boss_extrude17_sk1.sketch, amount=-BOSS_EXTRUDE17_REACH, mode=Mode.PRIVATE), bisect_by=boss_extrude17_end, keep=Keep.BOTH, mode=Mode.PRIVATE)
    boss_extrude17 = boss_extrude17_tool1.solids().sort_by(Axis((38.626601, 0, 25.5), (0, 1, 0)))[0]
    add(boss_extrude17)

    # Sketch49 → Cut-Extrude23 (cut)
    with BuildSketch(Plane.XY.offset(29.5)):
        with Locations((39, 19)):
            Rectangle(SKETCH49_W, SKETCH49_H)
    cut_extrude23 = extrude(amount=-CUT_EXTRUDE23_DEPTH, mode=Mode.SUBTRACT)

    # Sketch50 → Cut-Extrude24 (cut)
    with BuildSketch(Plane(origin=(0, 14.5, 0), x_dir=(1, 0, 0), z_dir=(0, 1, 0))):
        with Locations(Location((39, -25.5, 0), (0, 0, 270))):
            Circle(SKETCH50_R)
    cut_extrude24 = extrude(amount=-CUT_EXTRUDE24_DEPTH, mode=Mode.SUBTRACT)

    # Sketch51 → Cut-Extrude25 (cut)
    with BuildSketch(Plane(origin=(0, 14.5, 0), x_dir=(1, 0, 0), z_dir=(0, 1, 0)).offset(CUT_EXTRUDE25_START)):
        with Locations(Location((39, -25.5, 0), (0, 0, 270))):
            Circle(SKETCH51_R)
    cut_extrude25 = extrude(amount=-CUT_EXTRUDE25_DEPTH, mode=Mode.SUBTRACT)

    # Mirror7: Boss-Extrude16, Boss-Extrude17, Cut-Extrude23, Cut-Extrude24, Cut-Extrude25 across plane
    add(boss_extrude16.mirror(Plane(origin=(0, 0, 0), x_dir=(0, 0, 1), z_dir=(1, 0, 0))))
    add(boss_extrude17.mirror(Plane(origin=(0, 0, 0), x_dir=(0, 0, 1), z_dir=(1, 0, 0))))
    add(cut_extrude23.mirror(Plane(origin=(0, 0, 0), x_dir=(0, 0, 1), z_dir=(1, 0, 0))), mode=Mode.SUBTRACT)
    add(cut_extrude24.mirror(Plane(origin=(0, 0, 0), x_dir=(0, 0, 1), z_dir=(1, 0, 0))), mode=Mode.SUBTRACT)
    add(cut_extrude25.mirror(Plane(origin=(0, 0, 0), x_dir=(0, 0, 1), z_dir=(1, 0, 0))), mode=Mode.SUBTRACT)

    # Sketch53 → Boss-Extrude18 (add, up to next)
    with BuildSketch(Plane.ZY.offset(-29), mode=Mode.PRIVATE) as boss_extrude18_sk1:
        with Locations((30, 19)):
            Rectangle(SKETCH53_W, SKETCH53_H)
    boss_extrude18_tool1 = extrude(boss_extrude18_sk1.sketch, amount=BOSS_EXTRUDE18_REACH, mode=Mode.PRIVATE) - part.part
    add(boss_extrude18_tool1.solids().sort_by_distance((29, 19, 30))[0])

    # Sketch55 → Boss-Extrude20 (add)
    with BuildSketch(Plane(origin=(0, 0, 27.5), x_dir=(-1, 0, 0), z_dir=(0, 0, -1))):
        with Locations((0, 19)):
            Rectangle(SKETCH55_W, SKETCH55_H)
    extrude(amount=BOSS_EXTRUDE20_DEPTH)

    # Sketch19 → Cut-Extrude9 (cut)
    with BuildSketch(Plane(origin=(0, 30, 0), x_dir=(1, 0, 0), z_dir=(0, 1, 0)).offset(CUT_EXTRUDE9_START)):
        with Locations((0, -25)):
            Rectangle(SKETCH19_W, SKETCH19_H)
    extrude(amount=-CUT_EXTRUDE9_DEPTH, mode=Mode.SUBTRACT)

    # Sketch58 → Cut-Extrude27 (cut, through all)
    with BuildSketch(Plane(origin=(0, 30, 0), x_dir=(1, 0, 0), z_dir=(0, 1, 0))):
        with Locations((0, -34)):
            Rectangle(SKETCH58_W, SKETCH58_H)
    extrude(amount=-CUT_EXTRUDE27_DEPTH, mode=Mode.SUBTRACT)

    # Sketch59 → Boss-Extrude22 (add, up to next)
    with BuildSketch(Plane(origin=(0, 10, 0), x_dir=(1, 0, 0), z_dir=(0, 1, 0)), mode=Mode.PRIVATE) as boss_extrude22_sk1:
        with Locations((0, -27)):
            Rectangle(SKETCH59_W, SKETCH59_H)
    boss_extrude22_tool1 = extrude(boss_extrude22_sk1.sketch, amount=BOSS_EXTRUDE22_REACH, mode=Mode.PRIVATE) - part.part
    add(boss_extrude22_tool1.solids().sort_by_distance((0, 10, 27))[0])

    # Sketch18 → Cut-Extrude28 (cut, up to next)
    with BuildSketch(Plane.XY.offset(29.5), mode=Mode.PRIVATE) as cut_extrude28_sk1:
        with Locations((7.5, 15)):
            Circle(SKETCH18_R)
    cut_extrude28_tool1 = extrude(cut_extrude28_sk1.sketch, amount=-CUT_EXTRUDE28_REACH, mode=Mode.PRIVATE) & part.part
    # Sketch18 → Cut-Extrude28 (cut, up to next)
    with BuildSketch(Plane.XY.offset(29.5), mode=Mode.PRIVATE) as cut_extrude28_sk2:
        with Locations((-7.5, 15)):
            Circle(SKETCH18_R)
    cut_extrude28_tool2 = extrude(cut_extrude28_sk2.sketch, amount=-CUT_EXTRUDE28_REACH, mode=Mode.PRIVATE) & part.part
    add(cut_extrude28_tool1.solids().sort_by_distance((7.5, 15, 29.5))[0], mode=Mode.SUBTRACT)
    add(cut_extrude28_tool2.solids().sort_by_distance((-7.5, 15, 29.5))[0], mode=Mode.SUBTRACT)

    # Fillet9
    fillet9_edges = [part.edges().sort_by_distance(p)[0] for p in [
        (6, 15, 24.5),
        (-9, 15, 24.5),
    ]]
    fillet(fillet9_edges, radius=FILLET9_R)

    # Fillet10
    fillet10_edges = [part.edges().sort_by_distance(p)[0] for p in [
        (6, 15, 29.5),
        (-9, 15, 29.5),
    ]]
    fillet(fillet10_edges, radius=FILLET10_R)

    # Sketch60 → Boss-Extrude23 (add)
    with BuildSketch(Plane.XZ):
        with Locations((0, 31)):
            Rectangle(SKETCH60_W, SKETCH60_H)
    extrude(amount=-BOSS_EXTRUDE23_DEPTH)

    # Sketch61 → Cut-Extrude29 (cut)
    with BuildSketch(Plane.XZ):
        Polygon((11.5, 32.5), (-11.5, 32.5), (-14.5, 25), (14.5, 25), align=None)
    extrude(amount=-CUT_EXTRUDE29_DEPTH, mode=Mode.SUBTRACT)

    # Sketch62 → Cut-Extrude30 (cut)
    with BuildSketch(Plane.XY.offset(32.5)):
        with BuildLine():
            Line((-7.5, 17.5), (7.5, 17.5))
            ThreePointArc((7.5, 17.5), (10, 15), (7.5, 12.5))
            Line((7.5, 12.5), (-7.5, 12.5))
            ThreePointArc((-7.5, 12.5), (-10, 15), (-7.5, 17.5))
        make_face()
    extrude(amount=-CUT_EXTRUDE30_DEPTH, mode=Mode.SUBTRACT)

    # Sketch64 → Boss-Extrude24 (add)
    with BuildSketch(Plane(origin=(0, 0, 23.5), x_dir=(-1, 0, 0), z_dir=(0, 0, -1))):
        with Locations((0, 22)):
            Rectangle(SKETCH64_W, SKETCH64_H)
    extrude(amount=BOSS_EXTRUDE24_DEPTH)

    # Sketch63 → Cut-Extrude31 (cut)
    with BuildSketch(Plane(origin=(0, 30, 0), x_dir=(1, 0, 0), z_dir=(0, 1, 0))):
        Polygon((-11.5, -32.5), (11.5, -32.5), (14.5, -25), (-14.5, -25), align=None)
    extrude(amount=-CUT_EXTRUDE31_DEPTH, mode=Mode.SUBTRACT)

    # Sketch65 → Cut-Extrude32 (cut, through all)
    with BuildSketch(Plane(origin=(0, 30, 0), x_dir=(1, 0, 0), z_dir=(0, 1, 0))):
        Polygon((-13.142240903, 88.044253953), (13.142241659, 88.044254404), (18.142241659, 76.710920576), (18.142241659, 143.5), (-18.142240903, 143.5), (-18.142240903, 76.71092062), align=None)
    extrude(amount=-CUT_EXTRUDE32_DEPTH, mode=Mode.SUBTRACT)

    # Sketch66 → Boss-Extrude25 (add)
    with BuildSketch(Plane(origin=(-1.51e-06, 0, -88.044254178), x_dir=(-0.9999999999999999, 0, 1.7148916448299635e-08), z_dir=(-1.7148916448299635e-08, 0, -0.9999999999999999))):
        with Locations((-1.888e-06, 27.6)):
            Rectangle(SKETCH66_W, SKETCH66_H)
        with Locations((-1.888e-06, 2.4)):
            Rectangle(SKETCH66_W, SKETCH66_H)
    extrude(amount=BOSS_EXTRUDE25_DEPTH)

    # Sketch73 → Cut-Extrude33 (cut)
    with BuildSketch(Plane.XZ):
        with Locations((0.620645899, -33.237611814)):
            Rectangle(SKETCH73_W, SKETCH73_H)
    extrude(amount=-CUT_EXTRUDE33_DEPTH, mode=Mode.SUBTRACT)

    # Sketch75 → Cut-Extrude34 (cut)
    with BuildSketch(Plane.XZ.offset(-16)):
        Polygon((-2.5, -7), (8.6, -7), (8.6, 23.5), (29, 23.5), (29, 24.5), (8.6, 24.5), (-8.6, 24.5), (-29, 24.5), (-29, 23.5), (-8.6, 23.5), (-8.6, -7), align=None)
    extrude(amount=-CUT_EXTRUDE34_DEPTH, mode=Mode.SUBTRACT)

    # Sketch76 → Cut-Extrude35 (cut)
    with BuildSketch(Plane.XZ.offset(-16)):
        Polygon((-24.977236043, 32.5), (25, 32.5), (25, 24.5), (13.214480845, 24.5), (-24.977236043, 24.5), align=None)
    extrude(amount=-CUT_EXTRUDE35_DEPTH, mode=Mode.SUBTRACT)

    # Sketch78 → Cut-Extrude36 (cut)
    with BuildSketch(Plane.XZ.offset(-16)):
        Polygon((-24.977236043, 32.5), (-35, 32.5), (-35, -1), (-29, -1), (-29, 17.5), (-29, 24.5), (-24.977236043, 24.5), align=None)
        Polygon((-35, -7), (-29, -7), (-29, -32.5), (29, -32.5), (29, -7), (35, -7), (35, -76.71092062), (18.142240903, -76.71092062), (8, -76.71092062), (8, -72.5), (13.44203382, -72.5), (28.44203382, -38.5), (-28.44203382, -38.5), (-13.44203382, -72.5), (-8, -72.5), (-8, -76.71092062), (-18.142240903, -76.71092062), (-35, -76.71092062), align=None)
        Polygon((35, -1), (29, -1), (29, 24.5), (25, 24.5), (24.977236043, 32.5), (35, 32.5), align=None)
    extrude(amount=-CUT_EXTRUDE36_DEPTH, mode=Mode.SUBTRACT)

    # Sketch79 → Cut-Extrude37 (cut)
    with BuildSketch(Plane.XZ.offset(-16)):
        with Locations((0.386040845, -77.09592916)):
            Rectangle(SKETCH79_W, SKETCH79_H)
    extrude(amount=-CUT_EXTRUDE37_DEPTH, mode=Mode.SUBTRACT)

    # Sketch80 → Cut-Extrude38 (cut)
    with BuildSketch(Plane.XZ.offset(-18)):
        Polygon((-11.000000335, -98.04425399), (-11.000000335, -72.5), (-26.779624803, -72.5), (-26.779624803, -98.044253719), align=None)
        Polygon((26.779624803, -72.5), (11.000000335, -72.5), (11.000000335, -98.04425399), (26.779624803, -98.044253719), align=None)
    extrude(amount=-CUT_EXTRUDE38_DEPTH, mode=Mode.SUBTRACT)

    # Sketch81 → Cut-Extrude39 (cut, two sides: drawn at the far end of the back side and taken through both)
    with BuildSketch(Plane.XZ.offset(-20.2).offset(-CUT_EXTRUDE39_DEPTH_BACK)):
        with Locations((0, -31.528697094)):
            Rectangle(SKETCH81_W, SKETCH81_H)
        Polygon((-26.236151467, -43.5), (26.236151467, -43.5), (13.44203382, -72.5), (-13.44203382, -72.5), align=None, mode=Mode.SUBTRACT)
    extrude(amount=CUT_EXTRUDE39_DEPTH + CUT_EXTRUDE39_DEPTH_BACK, mode=Mode.SUBTRACT)

    # Sketch82 → Boss-Extrude26 (add)
    with BuildSketch(Plane.XZ.offset(-20.2).offset(BOSS_EXTRUDE26_START)):
        Polygon((-25.574386761, -45), (-28.574386761, -45), (-27.25085735, -48), (-24.25085735, -48), align=None)
        Polygon((25.574386761, -45), (24.25085735, -48), (27.25085735, -48), (28.574386761, -45), align=None)
    extrude(amount=-BOSS_EXTRUDE26_DEPTH)

    # Sketch83 → Boss-Extrude27 (add)
    with BuildSketch(Plane(origin=(0, 0, -72.5), x_dir=(-1, 0, 0), z_dir=(0, 0, -1))):
        with Locations((-7.65, 26.1)):
            Rectangle(SKETCH83_W, SKETCH83_H)
        with Locations((7.65, 26.1)):
            Rectangle(SKETCH83_W, SKETCH83_H)
    extrude(amount=BOSS_EXTRUDE27_DEPTH)


solid = part.part
